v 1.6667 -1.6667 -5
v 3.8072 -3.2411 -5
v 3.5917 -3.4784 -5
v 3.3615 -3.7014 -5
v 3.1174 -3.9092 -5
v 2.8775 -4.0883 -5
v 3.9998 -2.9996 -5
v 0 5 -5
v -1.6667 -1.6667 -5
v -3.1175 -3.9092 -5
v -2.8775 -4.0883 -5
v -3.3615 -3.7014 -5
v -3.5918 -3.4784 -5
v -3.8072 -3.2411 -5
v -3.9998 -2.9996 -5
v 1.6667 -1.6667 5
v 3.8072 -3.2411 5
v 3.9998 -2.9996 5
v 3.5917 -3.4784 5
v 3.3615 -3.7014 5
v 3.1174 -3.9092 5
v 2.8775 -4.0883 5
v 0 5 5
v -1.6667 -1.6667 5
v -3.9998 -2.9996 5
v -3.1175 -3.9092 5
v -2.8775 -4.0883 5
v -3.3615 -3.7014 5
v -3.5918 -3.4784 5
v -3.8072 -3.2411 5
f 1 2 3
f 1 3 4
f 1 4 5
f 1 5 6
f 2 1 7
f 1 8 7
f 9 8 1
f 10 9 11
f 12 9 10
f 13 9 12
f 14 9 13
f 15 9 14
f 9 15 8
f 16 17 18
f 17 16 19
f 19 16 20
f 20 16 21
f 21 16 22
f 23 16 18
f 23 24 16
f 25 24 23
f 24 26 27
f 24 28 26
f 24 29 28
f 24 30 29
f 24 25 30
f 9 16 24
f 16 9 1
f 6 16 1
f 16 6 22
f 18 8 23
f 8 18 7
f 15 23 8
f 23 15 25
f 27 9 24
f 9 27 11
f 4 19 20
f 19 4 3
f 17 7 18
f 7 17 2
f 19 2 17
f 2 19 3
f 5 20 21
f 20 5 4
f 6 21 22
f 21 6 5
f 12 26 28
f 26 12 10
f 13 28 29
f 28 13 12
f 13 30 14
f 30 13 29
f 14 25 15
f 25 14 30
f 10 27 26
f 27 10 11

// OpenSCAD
// Generated by SolidPython 1.1.3 on 2025-02-20 04:03:40
$fn=50;


intersection() {
	translate(v = [-5.0000000000, -5.0000000000, -5.0000000000]) {
		linear_extrude(height = 10) {
			polygon(points = [[0, 0], [5.0000000000, 10], [10, 0], [8.3333333333, 0], [6.6666666667, 3.3333333333], [3.3333333333, 3.3333333333], [1.6666666667, 0]]);
		}
	}
	rotate(a = -90, v = [0, 0, 1]) {
		translate(v = [-5.0000000000, -5.0000000000, -5.0000000000]) {
			linear_extrude(height = 10) {
				polygon(points = [[5.0000000000, 10.0000000000], [5.3203510999, 9.9897269638], [5.6393858084, 9.9589500691], [5.9557931435, 9.9077957850], [6.2682729195, 9.8364743152], [6.5755410901, 9.7452787351], [6.8763350244, 9.6345837867], [7.1694186956, 9.5048443395], [7.4535877600, 9.3565935206], [7.7276745061, 9.1904405245], [7.9905526525, 9.0070681093], [8.2411419765, 8.8072297918], [8.4784127530, 8.5917467505], [8.7013899854, 8.3615044513], [8.9091574123, 8.1174490093], [9.1008612730, 7.8605833006], [9.2757138150, 7.5919628416], [9.4329965319, 7.3126914512], [9.5720631151, 7.0239167156], [9.6923421102, 6.7268252721], [9.7933392652, 6.4226379332], [9.8746395609, 6.1126046698], [9.9359089171, 5.7979994752], [9.9768955647, 5.4801151295], [9.9974310810, 5.1602578879], [9.9974310810, 4.8397421121], [9.9768955647, 4.5198848705], [9.9359089171, 4.2020005248], [9.8746395609, 3.8873953302], [9.7933392652, 3.5773620668], [9.6923421102, 3.2731747279], [9.5720631151, 2.9760832844], [9.4329965319, 2.6873085488], [9.2757138150, 2.4080371584], [9.1008612730, 2.1394166994], [8.9091574123, 1.8825509907], [8.7013899854, 1.6384955487], [8.4784127530, 1.4082532495], [8.2411419765, 1.1927702082], [7.9905526525, 0.9929318907], [7.7276745061, 0.8095594755], [7.4535877600, 0.6434064794], [7.1694186956, 0.4951556605], [6.8763350244, 0.3654162133], [6.5755410901, 0.2547212649], [6.2682729195, 0.1635256848], [5.9557931435, 0.0922042150], [5.6393858084, 0.0410499309], [5.3203510999, 0.0102730362], [5.0000000000, 0.0000000000], [0, 0], [0, 10]]);
			}
		}
	}
}
/***********************************************
*********      SolidPython code:      **********
************************************************
 
from solid import *
from solid.utils import *

import math
import matplotlib.pyplot as plt
import subprocess
import os

class Hole:
    def __init__(self, x, y, radius):
        """
        Hole defined by:
        :param x: x dimension for center point of the circle as a ratio of letter height
        :param y: y dimension for center point of the circle as a ratio of letter height
        :param radius: radius of circle as a ratio of letter height
        """
        self.x = x
        self.y = y
        self.radius = radius

class Letter3D:
    def __init__(self, name, outer_shape_points, height, holes=None):
        """
        3D Letter defined by:
        :param name: name of letter
        :param outer_shape_points: points defining the outer shape of the letter
        :param heigh: size of cube that letter fits inside
        :param holes: list of Holes
        """
        self.name = name
        self.outer_shape_points = outer_shape_points
        self.holes = holes if holes is None else []
        self.height = height


    def generate(self):
        shape = polygon(points=self.outer_shape_points)

        if self.holes:
            for hole in self.holes:
                circle_hole = circle(r=hole.radius*self.height)
                positioned_hole = translate([hole.x*self.height, hole.y*self.height])(circle_hole)
                shape = difference()(shape, positioned_hole)
        
        shape_3d = linear_extrude(height=self.height)(shape)
        shape_3d = translate([-self.height/2, -self.height/2, -self.height/2])(shape_3d)
        return shape_3d
    
    def render(self):
        scad_render_to_file(self.shape, f"output/{self.name}.scad", file_header='$fn=50;')
        subprocess.run(["C:\\Program Files\\OpenSCAD\\openscad.exe", "-o", f"output\\{self.name}.stl", f"output\\{self.name}.scad"])


class TwoLetter3D:
    def __init__(self, height, letterA, letterA_face, letterB=None, letterB_face=None):
        self.height = height
        self.letterA = letterA
        self.letterB = letterB
        self.letterA_face = letterA_face
        self.letterB_face = letterB_face

    def call_letter_generation(self, letter):
        letter = letter.upper()
        function_name = f"letter_{letter}"
        func = globals().get(function_name)
        if func is None:
            raise ValueError(f"No letter generation function defined for letter '{letter}'.")
        else:
            print(func)
        return func(self.height)
    
    def rotate_object(self, face, shape):
        face = face.lower()
        if face == "z":
            return shape
        if face == "x":
            return rotate(a=90, v=[0,1,0])(shape)
        if face == "y":
            return rotate(a=-90, v=[0,0,1])(shape)
        else:
            raise ValueError("Face must be one of 'x', 'y', or 'z'.")

    def render(self):
        if self.letterA:
            letterA3D = self.call_letter_generation(self.letterA)
            letterA3D = self.rotate_object(self.letterA_face, letterA3D)

        if self.letterB:
            letterB3D = self.call_letter_generation(self.letterB)
            letterB3D = self.rotate_object(self.letterB_face, letterB3D)
            combined = intersection()(letterA3D, letterB3D)
            file_name = self.letterA + self.letterB
            scad_render_to_file(combined, f"output/{file_name}.scad", file_header='$fn=50;')
            subprocess.run(["C:\\Program Files\\OpenSCAD\\openscad.exe", "-o", f"output\\{file_name}.stl", f"output\\{file_name}.scad"])
            return
        else:
            file_name = self.letterA
            scad_render_to_file(letterA3D, f"output/{file_name}.scad", file_header='$fn=50;')
            subprocess.run(["C:\\Program Files\\OpenSCAD\\openscad.exe", "-o", f"output\\{file_name}.stl", f"output\\{file_name}.scad"])
    
                

def arc_points(radius, start_angle, end_angle, center=[0,0], num_points=50):
    angles = [start_angle + i * (end_angle - start_angle) / (num_points - 1)
              for i in range(num_points)]
    points = [
        (center[0] + radius * math.cos(math.radians(angle)),
         center[1] + radius * math.sin(math.radians(angle)))
        for angle in angles
    ]
    return points

def letter_A(h):
    shape_points = [(0,0), (h/2, h), (h, 0), (5/6*h, 0), (2/3*h, 1/3*h), (1/3*h, 1/3*h), (h/6, 0)]
    holes = [Hole(1/2, 7/12, 1/6)]
    A = Letter3D("A", shape_points, h, holes)
    return A.generate()

def letter_B(h):
    top_arc_points = arc_points(h/4, 90, -90, center=[3/4*h, 3/4*h])
    bottom_arc_points = arc_points(h/4, 90, -90, center=[3/4*h, h/4])
    other_points = [(0,0),(0,h)]

    shape_points = top_arc_points + bottom_arc_points + other_points
    holes = [Hole(1/2, 3/4, 1/6), Hole(1/2, 1/4, 1/6)]
    B = Letter3D("B", shape_points, h, holes)
    return B.generate()

def letter_C(h):
    outer_arc_points = arc_points(h/2, 30, 330, center=[h/2,h/2])
    inner_arc_points = arc_points(h/4, 30, 330, center=[h/2,h/2])[::-1]
    shape_points = outer_arc_points + inner_arc_points
    # print(shape_points)
    C = Letter3D("C", shape_points, h)
    return C.generate()


def letter_D(h):
    outer_arc_points = arc_points(h/2, 90, -90, center= [h/2, h/2])
    shape_points = outer_arc_points + [(0,0), (0, h)]
    holes = [Hole(1/2, 1/2, 1/6)]
    D = Letter3D("D", shape_points, h, holes)
    return D.generate()

def letter_E(h):
    points = [(0,0), (h,0), (h,h/5), (h/5,h/5), (h/5,2/5*h), (3/4*h,2/5*h), (3/4*h,3/5*h), (h/5,3/5*h), (h/5,4/5*h), (h,4/5*h), (h,h), (0,h)]
    E = Letter3D("E", points, h)
    return E.generate()

def letter_F(h):
    points = [(0,0), (h/5,0), (h/5,2/5*h), (3/4*h,2/5*h), (3/4*h,3/5*h), (h/5,3/5*h), (h/5,4/5*h), (h,4/5*h), (h,h), (0,h)]
    F = Letter3D("F", points, h)
    return F.generate()

if __name__ == "__main__":
    os.makedirs("output", exist_ok=True)

    letters = [chr(x) for x in range(ord('A'), ord('F') + 1)]
    for letter in letters:
        for other_letter in letters:
            shape = TwoLetter3D(10, letter, "z", other_letter, "y")
            shape.render()
 
 
************************************************/
